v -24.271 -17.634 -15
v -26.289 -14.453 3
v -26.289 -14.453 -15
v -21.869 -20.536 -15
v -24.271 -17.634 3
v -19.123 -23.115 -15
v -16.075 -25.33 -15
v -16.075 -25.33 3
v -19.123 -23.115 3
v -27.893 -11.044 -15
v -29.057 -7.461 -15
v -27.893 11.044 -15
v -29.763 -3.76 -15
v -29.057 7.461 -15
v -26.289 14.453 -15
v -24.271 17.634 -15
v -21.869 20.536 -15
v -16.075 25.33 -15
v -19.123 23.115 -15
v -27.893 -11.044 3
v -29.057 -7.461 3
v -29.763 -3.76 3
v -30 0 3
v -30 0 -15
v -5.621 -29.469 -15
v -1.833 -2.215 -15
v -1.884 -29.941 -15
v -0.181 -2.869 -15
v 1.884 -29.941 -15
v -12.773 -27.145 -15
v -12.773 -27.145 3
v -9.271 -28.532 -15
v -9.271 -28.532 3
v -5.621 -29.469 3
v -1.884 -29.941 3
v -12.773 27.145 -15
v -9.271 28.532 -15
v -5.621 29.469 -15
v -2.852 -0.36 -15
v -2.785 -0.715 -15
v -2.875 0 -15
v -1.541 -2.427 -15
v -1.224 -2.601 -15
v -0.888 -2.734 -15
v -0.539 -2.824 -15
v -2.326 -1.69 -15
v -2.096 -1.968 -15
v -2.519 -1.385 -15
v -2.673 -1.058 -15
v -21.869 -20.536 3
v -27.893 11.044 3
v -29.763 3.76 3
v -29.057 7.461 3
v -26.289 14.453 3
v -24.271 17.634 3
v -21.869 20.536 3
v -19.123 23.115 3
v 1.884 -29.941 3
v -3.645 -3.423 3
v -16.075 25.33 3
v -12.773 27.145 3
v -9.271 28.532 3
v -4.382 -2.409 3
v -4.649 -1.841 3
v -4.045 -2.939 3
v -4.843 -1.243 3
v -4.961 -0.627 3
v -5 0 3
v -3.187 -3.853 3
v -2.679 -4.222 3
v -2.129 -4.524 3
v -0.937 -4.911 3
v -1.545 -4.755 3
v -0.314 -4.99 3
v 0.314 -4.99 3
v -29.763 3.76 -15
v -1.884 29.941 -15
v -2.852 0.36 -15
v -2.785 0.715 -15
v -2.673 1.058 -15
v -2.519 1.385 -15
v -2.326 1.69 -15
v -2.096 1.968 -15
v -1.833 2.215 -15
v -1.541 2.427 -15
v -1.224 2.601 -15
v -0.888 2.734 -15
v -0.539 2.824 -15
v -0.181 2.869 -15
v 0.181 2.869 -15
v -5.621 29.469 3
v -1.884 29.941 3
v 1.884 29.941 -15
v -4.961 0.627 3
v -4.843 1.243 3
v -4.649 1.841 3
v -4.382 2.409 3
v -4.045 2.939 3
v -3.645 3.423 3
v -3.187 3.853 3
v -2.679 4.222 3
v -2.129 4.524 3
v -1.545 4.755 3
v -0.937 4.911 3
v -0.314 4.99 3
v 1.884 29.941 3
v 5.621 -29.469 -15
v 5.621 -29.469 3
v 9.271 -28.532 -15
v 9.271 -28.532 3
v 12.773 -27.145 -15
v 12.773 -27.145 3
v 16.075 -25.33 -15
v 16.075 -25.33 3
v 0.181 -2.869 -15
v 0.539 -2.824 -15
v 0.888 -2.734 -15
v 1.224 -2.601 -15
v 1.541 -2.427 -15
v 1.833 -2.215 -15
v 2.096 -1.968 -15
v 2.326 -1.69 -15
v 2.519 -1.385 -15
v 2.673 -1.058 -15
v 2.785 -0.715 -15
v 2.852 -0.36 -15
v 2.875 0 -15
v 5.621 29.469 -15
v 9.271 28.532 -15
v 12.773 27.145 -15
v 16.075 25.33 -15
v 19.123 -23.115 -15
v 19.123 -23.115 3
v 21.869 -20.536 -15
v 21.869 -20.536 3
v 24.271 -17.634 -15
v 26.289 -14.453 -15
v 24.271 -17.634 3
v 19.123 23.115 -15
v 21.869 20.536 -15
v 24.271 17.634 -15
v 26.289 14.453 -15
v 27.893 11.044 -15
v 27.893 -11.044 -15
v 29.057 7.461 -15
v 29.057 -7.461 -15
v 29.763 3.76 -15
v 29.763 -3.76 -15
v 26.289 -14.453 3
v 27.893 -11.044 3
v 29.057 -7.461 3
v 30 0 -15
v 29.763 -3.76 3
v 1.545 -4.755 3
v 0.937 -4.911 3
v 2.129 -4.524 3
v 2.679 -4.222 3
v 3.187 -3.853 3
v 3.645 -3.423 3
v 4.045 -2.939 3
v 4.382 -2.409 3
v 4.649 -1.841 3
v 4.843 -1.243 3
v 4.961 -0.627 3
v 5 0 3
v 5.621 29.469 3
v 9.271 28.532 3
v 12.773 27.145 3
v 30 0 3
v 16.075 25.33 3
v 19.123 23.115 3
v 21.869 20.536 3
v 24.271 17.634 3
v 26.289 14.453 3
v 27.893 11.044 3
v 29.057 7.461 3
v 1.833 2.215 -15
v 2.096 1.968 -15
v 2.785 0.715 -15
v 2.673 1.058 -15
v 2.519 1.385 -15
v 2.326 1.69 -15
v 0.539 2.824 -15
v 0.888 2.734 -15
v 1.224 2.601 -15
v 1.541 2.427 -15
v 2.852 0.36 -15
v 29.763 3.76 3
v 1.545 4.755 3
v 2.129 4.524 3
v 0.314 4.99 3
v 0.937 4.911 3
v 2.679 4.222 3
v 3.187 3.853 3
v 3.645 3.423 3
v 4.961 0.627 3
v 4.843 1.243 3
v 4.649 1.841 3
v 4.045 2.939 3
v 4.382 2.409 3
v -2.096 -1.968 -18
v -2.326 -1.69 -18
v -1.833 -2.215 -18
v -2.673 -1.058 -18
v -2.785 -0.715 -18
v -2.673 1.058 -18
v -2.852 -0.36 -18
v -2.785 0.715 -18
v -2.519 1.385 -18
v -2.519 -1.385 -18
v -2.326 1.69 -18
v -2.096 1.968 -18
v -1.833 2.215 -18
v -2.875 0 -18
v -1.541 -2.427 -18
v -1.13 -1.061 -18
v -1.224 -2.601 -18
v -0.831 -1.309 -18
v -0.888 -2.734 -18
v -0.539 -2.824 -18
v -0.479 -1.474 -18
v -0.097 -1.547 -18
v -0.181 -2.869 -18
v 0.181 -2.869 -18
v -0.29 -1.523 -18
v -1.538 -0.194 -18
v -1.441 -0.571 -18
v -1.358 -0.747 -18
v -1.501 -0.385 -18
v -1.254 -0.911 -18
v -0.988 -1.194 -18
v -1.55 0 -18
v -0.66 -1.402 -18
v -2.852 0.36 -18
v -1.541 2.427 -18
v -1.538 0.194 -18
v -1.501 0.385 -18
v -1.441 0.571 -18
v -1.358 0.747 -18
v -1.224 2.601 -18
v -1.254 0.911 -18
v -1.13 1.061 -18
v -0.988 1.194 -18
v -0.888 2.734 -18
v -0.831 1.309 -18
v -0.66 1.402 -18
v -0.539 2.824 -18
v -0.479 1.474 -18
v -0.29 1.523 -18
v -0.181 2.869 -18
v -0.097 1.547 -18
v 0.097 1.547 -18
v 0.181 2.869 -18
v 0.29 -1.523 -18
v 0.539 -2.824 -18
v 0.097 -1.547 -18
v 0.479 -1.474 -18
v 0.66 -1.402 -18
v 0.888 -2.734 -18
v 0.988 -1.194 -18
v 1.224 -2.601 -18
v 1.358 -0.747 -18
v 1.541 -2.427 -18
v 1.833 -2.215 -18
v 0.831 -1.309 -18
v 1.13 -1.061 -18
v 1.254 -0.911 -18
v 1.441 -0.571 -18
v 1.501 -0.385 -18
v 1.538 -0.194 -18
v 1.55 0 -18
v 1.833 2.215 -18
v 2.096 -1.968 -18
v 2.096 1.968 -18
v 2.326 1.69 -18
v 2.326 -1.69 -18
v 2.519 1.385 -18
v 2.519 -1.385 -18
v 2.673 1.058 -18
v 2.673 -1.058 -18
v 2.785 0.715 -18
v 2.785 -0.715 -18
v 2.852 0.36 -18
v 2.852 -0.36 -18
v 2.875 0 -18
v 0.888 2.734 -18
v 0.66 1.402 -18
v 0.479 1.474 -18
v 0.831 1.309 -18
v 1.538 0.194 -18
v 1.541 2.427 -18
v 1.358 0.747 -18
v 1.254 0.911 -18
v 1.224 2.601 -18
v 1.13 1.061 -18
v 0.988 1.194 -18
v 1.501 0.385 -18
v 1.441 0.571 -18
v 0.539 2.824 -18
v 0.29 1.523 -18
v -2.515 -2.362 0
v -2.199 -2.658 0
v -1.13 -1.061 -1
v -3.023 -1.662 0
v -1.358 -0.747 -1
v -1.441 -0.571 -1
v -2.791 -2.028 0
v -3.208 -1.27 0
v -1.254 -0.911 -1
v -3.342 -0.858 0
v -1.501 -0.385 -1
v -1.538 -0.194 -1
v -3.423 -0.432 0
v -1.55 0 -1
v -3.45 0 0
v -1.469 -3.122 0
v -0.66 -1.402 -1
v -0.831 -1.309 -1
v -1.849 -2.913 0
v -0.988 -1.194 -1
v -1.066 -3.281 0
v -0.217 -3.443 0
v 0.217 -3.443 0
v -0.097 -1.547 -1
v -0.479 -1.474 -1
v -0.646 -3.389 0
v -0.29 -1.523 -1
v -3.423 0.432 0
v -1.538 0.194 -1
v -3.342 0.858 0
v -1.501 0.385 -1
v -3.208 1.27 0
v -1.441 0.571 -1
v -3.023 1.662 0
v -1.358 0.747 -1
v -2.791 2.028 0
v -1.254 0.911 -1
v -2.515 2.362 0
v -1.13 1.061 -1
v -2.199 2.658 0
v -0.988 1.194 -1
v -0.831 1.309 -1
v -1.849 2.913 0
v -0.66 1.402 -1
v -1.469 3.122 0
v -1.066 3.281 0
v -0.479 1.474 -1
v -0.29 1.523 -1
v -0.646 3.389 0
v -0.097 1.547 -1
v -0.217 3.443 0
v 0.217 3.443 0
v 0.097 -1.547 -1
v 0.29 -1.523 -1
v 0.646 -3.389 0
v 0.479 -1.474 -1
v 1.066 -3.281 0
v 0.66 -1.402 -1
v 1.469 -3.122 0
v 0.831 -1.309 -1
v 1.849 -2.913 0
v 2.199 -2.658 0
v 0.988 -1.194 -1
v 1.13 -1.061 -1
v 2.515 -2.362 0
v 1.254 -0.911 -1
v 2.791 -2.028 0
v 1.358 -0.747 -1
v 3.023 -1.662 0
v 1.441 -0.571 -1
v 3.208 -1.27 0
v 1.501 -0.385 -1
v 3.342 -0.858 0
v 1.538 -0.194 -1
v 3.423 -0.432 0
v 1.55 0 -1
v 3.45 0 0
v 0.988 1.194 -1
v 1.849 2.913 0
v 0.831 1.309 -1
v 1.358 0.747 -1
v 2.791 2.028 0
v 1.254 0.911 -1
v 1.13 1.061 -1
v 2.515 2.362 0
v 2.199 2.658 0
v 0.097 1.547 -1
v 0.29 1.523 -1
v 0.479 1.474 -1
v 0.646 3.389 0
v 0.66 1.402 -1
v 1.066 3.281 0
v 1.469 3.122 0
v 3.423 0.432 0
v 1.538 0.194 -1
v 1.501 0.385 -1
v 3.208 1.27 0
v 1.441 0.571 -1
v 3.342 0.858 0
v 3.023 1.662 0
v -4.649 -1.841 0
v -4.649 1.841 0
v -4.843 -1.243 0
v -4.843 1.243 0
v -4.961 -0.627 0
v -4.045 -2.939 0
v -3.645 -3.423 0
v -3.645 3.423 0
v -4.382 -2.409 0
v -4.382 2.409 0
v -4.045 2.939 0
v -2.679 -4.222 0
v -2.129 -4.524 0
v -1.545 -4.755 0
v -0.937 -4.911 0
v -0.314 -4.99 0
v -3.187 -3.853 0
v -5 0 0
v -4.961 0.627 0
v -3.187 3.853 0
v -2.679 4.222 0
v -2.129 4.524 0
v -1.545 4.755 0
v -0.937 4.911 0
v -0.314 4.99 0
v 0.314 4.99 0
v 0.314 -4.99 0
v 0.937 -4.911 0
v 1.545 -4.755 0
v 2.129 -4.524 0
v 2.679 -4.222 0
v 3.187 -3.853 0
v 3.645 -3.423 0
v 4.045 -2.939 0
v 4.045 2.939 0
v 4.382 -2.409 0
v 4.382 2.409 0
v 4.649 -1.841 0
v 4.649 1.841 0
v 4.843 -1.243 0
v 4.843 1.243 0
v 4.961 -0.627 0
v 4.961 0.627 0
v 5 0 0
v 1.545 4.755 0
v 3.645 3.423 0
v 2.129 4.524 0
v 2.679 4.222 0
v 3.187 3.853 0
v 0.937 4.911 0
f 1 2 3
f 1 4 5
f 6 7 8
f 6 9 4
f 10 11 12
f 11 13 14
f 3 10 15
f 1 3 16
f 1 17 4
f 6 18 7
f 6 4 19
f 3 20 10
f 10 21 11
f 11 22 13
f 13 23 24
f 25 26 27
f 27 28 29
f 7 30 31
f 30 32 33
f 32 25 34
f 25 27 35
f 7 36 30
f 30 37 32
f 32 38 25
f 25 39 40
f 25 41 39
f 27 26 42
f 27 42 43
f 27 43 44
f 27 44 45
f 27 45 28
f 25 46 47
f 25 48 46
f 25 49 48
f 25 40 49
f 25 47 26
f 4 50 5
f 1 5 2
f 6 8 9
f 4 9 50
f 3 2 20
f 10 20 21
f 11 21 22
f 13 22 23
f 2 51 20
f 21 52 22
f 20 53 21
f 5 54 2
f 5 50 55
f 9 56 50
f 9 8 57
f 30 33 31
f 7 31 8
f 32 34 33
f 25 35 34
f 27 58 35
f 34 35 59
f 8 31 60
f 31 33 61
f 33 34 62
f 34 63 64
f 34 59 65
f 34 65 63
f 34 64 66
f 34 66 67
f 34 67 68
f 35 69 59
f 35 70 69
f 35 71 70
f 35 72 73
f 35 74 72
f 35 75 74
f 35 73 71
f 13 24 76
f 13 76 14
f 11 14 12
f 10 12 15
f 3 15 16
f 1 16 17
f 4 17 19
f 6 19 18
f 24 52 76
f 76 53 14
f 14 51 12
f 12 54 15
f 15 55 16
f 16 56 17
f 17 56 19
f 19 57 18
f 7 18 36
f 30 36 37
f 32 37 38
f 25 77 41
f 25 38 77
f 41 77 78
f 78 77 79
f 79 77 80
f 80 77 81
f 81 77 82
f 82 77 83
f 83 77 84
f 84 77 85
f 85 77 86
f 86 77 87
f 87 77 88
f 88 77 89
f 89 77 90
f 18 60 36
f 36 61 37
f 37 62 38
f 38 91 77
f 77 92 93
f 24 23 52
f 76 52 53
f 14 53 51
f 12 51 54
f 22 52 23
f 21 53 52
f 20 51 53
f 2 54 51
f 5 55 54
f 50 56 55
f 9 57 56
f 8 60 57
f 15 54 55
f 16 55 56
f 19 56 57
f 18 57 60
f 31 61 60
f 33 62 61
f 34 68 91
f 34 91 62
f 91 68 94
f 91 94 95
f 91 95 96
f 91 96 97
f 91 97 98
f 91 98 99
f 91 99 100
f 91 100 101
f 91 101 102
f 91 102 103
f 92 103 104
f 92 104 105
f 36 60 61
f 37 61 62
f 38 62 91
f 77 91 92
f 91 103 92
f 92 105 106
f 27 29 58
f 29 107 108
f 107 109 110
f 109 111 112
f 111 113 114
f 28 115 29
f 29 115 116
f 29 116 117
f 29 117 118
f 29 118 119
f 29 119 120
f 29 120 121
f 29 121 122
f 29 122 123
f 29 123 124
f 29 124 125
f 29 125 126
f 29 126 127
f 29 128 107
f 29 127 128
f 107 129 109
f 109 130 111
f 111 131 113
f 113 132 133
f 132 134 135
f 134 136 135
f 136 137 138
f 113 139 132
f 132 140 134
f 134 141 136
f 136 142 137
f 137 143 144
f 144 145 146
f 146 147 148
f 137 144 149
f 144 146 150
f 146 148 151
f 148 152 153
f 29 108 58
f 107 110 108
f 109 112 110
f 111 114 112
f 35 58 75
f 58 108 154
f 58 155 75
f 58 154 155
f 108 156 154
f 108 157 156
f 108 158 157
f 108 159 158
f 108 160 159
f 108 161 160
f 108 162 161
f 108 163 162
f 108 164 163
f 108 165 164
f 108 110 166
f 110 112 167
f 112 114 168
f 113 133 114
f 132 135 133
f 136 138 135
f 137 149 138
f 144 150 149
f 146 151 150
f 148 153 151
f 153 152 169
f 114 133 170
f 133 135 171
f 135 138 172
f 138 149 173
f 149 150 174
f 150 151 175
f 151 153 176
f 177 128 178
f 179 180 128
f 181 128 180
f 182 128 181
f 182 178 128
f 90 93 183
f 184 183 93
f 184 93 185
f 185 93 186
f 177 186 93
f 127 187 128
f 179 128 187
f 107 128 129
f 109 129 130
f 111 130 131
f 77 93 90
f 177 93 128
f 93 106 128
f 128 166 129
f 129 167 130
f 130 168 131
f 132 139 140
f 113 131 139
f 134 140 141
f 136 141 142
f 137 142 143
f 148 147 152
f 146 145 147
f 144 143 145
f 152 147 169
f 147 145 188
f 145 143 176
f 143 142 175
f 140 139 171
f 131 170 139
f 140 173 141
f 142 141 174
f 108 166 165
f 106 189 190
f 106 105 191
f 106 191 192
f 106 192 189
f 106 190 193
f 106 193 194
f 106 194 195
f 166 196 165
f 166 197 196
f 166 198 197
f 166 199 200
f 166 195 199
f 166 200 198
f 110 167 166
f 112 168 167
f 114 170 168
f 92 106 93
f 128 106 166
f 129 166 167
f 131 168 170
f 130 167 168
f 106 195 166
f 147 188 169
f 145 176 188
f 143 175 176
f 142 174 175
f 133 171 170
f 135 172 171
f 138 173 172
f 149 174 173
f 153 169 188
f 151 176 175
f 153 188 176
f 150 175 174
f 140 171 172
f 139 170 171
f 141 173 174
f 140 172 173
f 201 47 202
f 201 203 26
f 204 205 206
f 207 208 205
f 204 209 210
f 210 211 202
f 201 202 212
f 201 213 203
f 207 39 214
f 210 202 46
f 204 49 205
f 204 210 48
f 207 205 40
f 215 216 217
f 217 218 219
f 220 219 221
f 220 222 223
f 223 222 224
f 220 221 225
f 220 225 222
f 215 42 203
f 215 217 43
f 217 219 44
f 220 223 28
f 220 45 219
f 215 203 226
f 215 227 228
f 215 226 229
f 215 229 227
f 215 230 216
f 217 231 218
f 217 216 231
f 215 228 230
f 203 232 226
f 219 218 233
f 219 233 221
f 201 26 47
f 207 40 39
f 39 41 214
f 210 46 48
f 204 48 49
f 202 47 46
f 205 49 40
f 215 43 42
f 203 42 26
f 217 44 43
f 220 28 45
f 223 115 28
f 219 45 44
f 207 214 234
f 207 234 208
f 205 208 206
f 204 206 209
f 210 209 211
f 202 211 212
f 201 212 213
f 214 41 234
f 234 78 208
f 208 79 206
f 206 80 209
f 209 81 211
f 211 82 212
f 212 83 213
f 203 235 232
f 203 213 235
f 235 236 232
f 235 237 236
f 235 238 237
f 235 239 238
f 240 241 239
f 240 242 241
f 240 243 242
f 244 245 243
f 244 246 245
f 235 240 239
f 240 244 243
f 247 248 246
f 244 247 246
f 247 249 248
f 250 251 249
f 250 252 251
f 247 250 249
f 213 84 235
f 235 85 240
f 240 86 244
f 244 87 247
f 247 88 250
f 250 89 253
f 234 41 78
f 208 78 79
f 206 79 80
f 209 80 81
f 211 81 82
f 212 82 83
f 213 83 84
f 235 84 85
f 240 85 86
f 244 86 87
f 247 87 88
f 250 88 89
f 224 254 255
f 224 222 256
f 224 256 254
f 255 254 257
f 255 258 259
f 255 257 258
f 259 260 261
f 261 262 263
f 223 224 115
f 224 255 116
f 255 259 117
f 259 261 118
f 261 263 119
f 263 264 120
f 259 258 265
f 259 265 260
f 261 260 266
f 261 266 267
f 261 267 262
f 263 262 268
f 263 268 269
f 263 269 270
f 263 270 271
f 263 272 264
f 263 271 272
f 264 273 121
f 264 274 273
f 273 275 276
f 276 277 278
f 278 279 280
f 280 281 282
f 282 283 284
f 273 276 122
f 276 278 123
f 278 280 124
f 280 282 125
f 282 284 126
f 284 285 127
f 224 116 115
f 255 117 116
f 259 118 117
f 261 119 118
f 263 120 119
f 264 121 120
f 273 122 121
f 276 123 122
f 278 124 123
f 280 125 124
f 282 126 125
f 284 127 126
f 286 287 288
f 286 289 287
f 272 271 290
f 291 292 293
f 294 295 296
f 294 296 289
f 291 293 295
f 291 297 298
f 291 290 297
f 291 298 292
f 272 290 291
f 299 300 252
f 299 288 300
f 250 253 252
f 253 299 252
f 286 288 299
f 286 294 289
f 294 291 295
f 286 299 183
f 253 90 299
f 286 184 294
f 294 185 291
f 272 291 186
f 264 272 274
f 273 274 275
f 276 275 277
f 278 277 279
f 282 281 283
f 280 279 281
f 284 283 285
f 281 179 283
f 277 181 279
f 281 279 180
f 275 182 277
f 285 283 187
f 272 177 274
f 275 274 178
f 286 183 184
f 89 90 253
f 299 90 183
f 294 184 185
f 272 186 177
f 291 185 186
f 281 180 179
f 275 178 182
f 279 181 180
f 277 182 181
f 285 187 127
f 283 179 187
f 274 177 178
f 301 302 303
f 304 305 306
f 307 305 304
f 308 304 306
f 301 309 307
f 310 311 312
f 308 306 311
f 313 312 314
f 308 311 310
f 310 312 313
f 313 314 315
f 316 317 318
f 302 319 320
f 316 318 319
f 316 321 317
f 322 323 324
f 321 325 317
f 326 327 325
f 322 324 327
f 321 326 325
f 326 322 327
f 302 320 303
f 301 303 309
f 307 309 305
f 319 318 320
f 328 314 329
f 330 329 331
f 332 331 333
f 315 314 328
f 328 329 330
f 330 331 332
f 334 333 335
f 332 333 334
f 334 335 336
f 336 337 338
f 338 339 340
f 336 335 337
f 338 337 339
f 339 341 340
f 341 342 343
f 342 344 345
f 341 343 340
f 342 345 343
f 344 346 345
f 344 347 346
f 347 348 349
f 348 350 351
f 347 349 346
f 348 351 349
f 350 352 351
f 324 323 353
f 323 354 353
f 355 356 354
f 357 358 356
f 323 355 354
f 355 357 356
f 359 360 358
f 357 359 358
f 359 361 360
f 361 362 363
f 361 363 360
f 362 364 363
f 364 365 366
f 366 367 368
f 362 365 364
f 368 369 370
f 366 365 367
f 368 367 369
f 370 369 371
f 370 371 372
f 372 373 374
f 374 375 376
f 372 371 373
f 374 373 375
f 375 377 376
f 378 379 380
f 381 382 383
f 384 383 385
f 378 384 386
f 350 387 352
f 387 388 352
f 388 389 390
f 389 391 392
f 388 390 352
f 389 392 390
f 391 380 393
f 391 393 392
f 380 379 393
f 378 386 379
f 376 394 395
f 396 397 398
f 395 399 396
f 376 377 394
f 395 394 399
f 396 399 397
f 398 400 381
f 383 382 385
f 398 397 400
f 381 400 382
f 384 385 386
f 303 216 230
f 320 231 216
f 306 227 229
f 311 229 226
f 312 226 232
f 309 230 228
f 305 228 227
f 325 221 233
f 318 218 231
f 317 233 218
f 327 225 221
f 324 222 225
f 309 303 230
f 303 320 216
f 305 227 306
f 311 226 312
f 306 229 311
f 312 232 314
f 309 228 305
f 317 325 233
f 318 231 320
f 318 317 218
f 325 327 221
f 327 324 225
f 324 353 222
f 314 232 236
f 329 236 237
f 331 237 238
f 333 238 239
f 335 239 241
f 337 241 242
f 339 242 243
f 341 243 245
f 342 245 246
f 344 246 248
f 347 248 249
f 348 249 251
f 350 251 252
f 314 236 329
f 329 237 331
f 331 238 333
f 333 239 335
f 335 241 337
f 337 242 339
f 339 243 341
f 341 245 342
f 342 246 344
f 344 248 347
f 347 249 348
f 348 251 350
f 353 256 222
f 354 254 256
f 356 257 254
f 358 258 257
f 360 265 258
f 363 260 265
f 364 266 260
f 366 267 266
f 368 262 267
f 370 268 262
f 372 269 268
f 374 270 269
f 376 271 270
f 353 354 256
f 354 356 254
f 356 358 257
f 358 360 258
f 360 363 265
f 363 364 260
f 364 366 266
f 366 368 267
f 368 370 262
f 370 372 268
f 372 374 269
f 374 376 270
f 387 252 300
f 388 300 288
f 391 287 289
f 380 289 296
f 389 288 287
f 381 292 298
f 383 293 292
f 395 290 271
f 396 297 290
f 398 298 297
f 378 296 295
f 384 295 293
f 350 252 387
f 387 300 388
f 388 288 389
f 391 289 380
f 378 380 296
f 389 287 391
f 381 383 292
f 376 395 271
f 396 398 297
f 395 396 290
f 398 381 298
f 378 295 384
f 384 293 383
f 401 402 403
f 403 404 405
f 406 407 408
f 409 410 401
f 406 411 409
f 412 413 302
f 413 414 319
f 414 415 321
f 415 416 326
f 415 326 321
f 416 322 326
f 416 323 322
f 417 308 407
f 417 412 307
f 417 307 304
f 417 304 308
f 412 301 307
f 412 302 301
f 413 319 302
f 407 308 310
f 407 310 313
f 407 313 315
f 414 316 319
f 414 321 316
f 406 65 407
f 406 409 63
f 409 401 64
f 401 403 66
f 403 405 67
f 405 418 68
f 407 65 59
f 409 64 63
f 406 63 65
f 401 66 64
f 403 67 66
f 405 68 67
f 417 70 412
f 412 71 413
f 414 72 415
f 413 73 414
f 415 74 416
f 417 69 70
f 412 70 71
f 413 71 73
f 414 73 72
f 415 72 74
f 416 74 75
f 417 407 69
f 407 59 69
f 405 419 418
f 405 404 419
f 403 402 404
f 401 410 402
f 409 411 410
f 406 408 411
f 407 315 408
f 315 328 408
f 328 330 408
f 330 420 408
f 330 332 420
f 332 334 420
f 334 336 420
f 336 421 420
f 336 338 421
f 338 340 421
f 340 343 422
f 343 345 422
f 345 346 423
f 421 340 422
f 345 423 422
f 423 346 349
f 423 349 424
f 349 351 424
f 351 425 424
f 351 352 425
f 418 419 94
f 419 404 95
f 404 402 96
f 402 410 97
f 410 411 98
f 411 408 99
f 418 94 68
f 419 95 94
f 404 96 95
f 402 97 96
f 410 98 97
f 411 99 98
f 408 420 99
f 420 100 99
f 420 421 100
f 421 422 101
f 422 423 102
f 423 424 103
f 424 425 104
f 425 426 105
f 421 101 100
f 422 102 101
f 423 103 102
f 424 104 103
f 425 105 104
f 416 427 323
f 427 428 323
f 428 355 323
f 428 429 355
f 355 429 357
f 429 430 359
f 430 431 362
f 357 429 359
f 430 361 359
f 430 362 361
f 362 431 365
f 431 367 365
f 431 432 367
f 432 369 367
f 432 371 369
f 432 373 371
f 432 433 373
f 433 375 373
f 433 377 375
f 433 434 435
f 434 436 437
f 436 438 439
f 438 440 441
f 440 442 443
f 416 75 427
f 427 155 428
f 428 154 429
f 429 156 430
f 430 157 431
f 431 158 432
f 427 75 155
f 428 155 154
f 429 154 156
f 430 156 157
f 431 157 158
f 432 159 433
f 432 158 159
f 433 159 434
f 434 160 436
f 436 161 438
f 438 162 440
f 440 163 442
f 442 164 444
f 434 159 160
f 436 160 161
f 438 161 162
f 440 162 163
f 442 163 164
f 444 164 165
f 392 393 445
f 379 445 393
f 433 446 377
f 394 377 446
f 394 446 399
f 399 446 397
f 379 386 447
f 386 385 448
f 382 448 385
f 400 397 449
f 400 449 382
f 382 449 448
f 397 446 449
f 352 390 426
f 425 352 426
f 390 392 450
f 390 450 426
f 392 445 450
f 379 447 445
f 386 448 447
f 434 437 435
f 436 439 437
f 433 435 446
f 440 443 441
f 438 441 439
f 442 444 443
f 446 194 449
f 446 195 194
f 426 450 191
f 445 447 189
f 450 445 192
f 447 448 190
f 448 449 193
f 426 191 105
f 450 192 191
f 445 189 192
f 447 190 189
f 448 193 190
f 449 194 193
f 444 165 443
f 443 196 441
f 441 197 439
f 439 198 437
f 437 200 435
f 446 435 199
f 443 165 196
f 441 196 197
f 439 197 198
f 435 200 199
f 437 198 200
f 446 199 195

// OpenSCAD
$fn = 50;


difference() {
	union() {
		translate(v = [0, 0, -15.0000000000]) {
			cylinder(h = 18, r = 30.0000000000);
		}
		#translate(v = [0, 0, -18.0000000000]) {
			cylinder(h = 18, r = 2.8750000000);
		}
	}
	union() {
		translate(v = [0, 0, 0]) {
			rotate(a = [0, 0, 0]) {
				difference() {
					union() {
						translate(v = [0, 0, -18.0000000000]) {
							cylinder(h = 18, r = 1.2500000000);
						}
						translate(v = [0, 0, -1.0000000000]) {
							cylinder(h = 1.0000000000, r1 = 1.5500000000, r2 = 3.4500000000);
						}
						translate(v = [0, 0, -18.0000000000]) {
							cylinder(h = 18, r = 1.5500000000);
						}
						translate(v = [0, 0, -18.0000000000]) {
							cylinder(h = 18, r = 1.2500000000);
						}
					}
					union();
				}
			}
		}
		#cylinder(h = 3, r = 5.0000000000);
	}
}
